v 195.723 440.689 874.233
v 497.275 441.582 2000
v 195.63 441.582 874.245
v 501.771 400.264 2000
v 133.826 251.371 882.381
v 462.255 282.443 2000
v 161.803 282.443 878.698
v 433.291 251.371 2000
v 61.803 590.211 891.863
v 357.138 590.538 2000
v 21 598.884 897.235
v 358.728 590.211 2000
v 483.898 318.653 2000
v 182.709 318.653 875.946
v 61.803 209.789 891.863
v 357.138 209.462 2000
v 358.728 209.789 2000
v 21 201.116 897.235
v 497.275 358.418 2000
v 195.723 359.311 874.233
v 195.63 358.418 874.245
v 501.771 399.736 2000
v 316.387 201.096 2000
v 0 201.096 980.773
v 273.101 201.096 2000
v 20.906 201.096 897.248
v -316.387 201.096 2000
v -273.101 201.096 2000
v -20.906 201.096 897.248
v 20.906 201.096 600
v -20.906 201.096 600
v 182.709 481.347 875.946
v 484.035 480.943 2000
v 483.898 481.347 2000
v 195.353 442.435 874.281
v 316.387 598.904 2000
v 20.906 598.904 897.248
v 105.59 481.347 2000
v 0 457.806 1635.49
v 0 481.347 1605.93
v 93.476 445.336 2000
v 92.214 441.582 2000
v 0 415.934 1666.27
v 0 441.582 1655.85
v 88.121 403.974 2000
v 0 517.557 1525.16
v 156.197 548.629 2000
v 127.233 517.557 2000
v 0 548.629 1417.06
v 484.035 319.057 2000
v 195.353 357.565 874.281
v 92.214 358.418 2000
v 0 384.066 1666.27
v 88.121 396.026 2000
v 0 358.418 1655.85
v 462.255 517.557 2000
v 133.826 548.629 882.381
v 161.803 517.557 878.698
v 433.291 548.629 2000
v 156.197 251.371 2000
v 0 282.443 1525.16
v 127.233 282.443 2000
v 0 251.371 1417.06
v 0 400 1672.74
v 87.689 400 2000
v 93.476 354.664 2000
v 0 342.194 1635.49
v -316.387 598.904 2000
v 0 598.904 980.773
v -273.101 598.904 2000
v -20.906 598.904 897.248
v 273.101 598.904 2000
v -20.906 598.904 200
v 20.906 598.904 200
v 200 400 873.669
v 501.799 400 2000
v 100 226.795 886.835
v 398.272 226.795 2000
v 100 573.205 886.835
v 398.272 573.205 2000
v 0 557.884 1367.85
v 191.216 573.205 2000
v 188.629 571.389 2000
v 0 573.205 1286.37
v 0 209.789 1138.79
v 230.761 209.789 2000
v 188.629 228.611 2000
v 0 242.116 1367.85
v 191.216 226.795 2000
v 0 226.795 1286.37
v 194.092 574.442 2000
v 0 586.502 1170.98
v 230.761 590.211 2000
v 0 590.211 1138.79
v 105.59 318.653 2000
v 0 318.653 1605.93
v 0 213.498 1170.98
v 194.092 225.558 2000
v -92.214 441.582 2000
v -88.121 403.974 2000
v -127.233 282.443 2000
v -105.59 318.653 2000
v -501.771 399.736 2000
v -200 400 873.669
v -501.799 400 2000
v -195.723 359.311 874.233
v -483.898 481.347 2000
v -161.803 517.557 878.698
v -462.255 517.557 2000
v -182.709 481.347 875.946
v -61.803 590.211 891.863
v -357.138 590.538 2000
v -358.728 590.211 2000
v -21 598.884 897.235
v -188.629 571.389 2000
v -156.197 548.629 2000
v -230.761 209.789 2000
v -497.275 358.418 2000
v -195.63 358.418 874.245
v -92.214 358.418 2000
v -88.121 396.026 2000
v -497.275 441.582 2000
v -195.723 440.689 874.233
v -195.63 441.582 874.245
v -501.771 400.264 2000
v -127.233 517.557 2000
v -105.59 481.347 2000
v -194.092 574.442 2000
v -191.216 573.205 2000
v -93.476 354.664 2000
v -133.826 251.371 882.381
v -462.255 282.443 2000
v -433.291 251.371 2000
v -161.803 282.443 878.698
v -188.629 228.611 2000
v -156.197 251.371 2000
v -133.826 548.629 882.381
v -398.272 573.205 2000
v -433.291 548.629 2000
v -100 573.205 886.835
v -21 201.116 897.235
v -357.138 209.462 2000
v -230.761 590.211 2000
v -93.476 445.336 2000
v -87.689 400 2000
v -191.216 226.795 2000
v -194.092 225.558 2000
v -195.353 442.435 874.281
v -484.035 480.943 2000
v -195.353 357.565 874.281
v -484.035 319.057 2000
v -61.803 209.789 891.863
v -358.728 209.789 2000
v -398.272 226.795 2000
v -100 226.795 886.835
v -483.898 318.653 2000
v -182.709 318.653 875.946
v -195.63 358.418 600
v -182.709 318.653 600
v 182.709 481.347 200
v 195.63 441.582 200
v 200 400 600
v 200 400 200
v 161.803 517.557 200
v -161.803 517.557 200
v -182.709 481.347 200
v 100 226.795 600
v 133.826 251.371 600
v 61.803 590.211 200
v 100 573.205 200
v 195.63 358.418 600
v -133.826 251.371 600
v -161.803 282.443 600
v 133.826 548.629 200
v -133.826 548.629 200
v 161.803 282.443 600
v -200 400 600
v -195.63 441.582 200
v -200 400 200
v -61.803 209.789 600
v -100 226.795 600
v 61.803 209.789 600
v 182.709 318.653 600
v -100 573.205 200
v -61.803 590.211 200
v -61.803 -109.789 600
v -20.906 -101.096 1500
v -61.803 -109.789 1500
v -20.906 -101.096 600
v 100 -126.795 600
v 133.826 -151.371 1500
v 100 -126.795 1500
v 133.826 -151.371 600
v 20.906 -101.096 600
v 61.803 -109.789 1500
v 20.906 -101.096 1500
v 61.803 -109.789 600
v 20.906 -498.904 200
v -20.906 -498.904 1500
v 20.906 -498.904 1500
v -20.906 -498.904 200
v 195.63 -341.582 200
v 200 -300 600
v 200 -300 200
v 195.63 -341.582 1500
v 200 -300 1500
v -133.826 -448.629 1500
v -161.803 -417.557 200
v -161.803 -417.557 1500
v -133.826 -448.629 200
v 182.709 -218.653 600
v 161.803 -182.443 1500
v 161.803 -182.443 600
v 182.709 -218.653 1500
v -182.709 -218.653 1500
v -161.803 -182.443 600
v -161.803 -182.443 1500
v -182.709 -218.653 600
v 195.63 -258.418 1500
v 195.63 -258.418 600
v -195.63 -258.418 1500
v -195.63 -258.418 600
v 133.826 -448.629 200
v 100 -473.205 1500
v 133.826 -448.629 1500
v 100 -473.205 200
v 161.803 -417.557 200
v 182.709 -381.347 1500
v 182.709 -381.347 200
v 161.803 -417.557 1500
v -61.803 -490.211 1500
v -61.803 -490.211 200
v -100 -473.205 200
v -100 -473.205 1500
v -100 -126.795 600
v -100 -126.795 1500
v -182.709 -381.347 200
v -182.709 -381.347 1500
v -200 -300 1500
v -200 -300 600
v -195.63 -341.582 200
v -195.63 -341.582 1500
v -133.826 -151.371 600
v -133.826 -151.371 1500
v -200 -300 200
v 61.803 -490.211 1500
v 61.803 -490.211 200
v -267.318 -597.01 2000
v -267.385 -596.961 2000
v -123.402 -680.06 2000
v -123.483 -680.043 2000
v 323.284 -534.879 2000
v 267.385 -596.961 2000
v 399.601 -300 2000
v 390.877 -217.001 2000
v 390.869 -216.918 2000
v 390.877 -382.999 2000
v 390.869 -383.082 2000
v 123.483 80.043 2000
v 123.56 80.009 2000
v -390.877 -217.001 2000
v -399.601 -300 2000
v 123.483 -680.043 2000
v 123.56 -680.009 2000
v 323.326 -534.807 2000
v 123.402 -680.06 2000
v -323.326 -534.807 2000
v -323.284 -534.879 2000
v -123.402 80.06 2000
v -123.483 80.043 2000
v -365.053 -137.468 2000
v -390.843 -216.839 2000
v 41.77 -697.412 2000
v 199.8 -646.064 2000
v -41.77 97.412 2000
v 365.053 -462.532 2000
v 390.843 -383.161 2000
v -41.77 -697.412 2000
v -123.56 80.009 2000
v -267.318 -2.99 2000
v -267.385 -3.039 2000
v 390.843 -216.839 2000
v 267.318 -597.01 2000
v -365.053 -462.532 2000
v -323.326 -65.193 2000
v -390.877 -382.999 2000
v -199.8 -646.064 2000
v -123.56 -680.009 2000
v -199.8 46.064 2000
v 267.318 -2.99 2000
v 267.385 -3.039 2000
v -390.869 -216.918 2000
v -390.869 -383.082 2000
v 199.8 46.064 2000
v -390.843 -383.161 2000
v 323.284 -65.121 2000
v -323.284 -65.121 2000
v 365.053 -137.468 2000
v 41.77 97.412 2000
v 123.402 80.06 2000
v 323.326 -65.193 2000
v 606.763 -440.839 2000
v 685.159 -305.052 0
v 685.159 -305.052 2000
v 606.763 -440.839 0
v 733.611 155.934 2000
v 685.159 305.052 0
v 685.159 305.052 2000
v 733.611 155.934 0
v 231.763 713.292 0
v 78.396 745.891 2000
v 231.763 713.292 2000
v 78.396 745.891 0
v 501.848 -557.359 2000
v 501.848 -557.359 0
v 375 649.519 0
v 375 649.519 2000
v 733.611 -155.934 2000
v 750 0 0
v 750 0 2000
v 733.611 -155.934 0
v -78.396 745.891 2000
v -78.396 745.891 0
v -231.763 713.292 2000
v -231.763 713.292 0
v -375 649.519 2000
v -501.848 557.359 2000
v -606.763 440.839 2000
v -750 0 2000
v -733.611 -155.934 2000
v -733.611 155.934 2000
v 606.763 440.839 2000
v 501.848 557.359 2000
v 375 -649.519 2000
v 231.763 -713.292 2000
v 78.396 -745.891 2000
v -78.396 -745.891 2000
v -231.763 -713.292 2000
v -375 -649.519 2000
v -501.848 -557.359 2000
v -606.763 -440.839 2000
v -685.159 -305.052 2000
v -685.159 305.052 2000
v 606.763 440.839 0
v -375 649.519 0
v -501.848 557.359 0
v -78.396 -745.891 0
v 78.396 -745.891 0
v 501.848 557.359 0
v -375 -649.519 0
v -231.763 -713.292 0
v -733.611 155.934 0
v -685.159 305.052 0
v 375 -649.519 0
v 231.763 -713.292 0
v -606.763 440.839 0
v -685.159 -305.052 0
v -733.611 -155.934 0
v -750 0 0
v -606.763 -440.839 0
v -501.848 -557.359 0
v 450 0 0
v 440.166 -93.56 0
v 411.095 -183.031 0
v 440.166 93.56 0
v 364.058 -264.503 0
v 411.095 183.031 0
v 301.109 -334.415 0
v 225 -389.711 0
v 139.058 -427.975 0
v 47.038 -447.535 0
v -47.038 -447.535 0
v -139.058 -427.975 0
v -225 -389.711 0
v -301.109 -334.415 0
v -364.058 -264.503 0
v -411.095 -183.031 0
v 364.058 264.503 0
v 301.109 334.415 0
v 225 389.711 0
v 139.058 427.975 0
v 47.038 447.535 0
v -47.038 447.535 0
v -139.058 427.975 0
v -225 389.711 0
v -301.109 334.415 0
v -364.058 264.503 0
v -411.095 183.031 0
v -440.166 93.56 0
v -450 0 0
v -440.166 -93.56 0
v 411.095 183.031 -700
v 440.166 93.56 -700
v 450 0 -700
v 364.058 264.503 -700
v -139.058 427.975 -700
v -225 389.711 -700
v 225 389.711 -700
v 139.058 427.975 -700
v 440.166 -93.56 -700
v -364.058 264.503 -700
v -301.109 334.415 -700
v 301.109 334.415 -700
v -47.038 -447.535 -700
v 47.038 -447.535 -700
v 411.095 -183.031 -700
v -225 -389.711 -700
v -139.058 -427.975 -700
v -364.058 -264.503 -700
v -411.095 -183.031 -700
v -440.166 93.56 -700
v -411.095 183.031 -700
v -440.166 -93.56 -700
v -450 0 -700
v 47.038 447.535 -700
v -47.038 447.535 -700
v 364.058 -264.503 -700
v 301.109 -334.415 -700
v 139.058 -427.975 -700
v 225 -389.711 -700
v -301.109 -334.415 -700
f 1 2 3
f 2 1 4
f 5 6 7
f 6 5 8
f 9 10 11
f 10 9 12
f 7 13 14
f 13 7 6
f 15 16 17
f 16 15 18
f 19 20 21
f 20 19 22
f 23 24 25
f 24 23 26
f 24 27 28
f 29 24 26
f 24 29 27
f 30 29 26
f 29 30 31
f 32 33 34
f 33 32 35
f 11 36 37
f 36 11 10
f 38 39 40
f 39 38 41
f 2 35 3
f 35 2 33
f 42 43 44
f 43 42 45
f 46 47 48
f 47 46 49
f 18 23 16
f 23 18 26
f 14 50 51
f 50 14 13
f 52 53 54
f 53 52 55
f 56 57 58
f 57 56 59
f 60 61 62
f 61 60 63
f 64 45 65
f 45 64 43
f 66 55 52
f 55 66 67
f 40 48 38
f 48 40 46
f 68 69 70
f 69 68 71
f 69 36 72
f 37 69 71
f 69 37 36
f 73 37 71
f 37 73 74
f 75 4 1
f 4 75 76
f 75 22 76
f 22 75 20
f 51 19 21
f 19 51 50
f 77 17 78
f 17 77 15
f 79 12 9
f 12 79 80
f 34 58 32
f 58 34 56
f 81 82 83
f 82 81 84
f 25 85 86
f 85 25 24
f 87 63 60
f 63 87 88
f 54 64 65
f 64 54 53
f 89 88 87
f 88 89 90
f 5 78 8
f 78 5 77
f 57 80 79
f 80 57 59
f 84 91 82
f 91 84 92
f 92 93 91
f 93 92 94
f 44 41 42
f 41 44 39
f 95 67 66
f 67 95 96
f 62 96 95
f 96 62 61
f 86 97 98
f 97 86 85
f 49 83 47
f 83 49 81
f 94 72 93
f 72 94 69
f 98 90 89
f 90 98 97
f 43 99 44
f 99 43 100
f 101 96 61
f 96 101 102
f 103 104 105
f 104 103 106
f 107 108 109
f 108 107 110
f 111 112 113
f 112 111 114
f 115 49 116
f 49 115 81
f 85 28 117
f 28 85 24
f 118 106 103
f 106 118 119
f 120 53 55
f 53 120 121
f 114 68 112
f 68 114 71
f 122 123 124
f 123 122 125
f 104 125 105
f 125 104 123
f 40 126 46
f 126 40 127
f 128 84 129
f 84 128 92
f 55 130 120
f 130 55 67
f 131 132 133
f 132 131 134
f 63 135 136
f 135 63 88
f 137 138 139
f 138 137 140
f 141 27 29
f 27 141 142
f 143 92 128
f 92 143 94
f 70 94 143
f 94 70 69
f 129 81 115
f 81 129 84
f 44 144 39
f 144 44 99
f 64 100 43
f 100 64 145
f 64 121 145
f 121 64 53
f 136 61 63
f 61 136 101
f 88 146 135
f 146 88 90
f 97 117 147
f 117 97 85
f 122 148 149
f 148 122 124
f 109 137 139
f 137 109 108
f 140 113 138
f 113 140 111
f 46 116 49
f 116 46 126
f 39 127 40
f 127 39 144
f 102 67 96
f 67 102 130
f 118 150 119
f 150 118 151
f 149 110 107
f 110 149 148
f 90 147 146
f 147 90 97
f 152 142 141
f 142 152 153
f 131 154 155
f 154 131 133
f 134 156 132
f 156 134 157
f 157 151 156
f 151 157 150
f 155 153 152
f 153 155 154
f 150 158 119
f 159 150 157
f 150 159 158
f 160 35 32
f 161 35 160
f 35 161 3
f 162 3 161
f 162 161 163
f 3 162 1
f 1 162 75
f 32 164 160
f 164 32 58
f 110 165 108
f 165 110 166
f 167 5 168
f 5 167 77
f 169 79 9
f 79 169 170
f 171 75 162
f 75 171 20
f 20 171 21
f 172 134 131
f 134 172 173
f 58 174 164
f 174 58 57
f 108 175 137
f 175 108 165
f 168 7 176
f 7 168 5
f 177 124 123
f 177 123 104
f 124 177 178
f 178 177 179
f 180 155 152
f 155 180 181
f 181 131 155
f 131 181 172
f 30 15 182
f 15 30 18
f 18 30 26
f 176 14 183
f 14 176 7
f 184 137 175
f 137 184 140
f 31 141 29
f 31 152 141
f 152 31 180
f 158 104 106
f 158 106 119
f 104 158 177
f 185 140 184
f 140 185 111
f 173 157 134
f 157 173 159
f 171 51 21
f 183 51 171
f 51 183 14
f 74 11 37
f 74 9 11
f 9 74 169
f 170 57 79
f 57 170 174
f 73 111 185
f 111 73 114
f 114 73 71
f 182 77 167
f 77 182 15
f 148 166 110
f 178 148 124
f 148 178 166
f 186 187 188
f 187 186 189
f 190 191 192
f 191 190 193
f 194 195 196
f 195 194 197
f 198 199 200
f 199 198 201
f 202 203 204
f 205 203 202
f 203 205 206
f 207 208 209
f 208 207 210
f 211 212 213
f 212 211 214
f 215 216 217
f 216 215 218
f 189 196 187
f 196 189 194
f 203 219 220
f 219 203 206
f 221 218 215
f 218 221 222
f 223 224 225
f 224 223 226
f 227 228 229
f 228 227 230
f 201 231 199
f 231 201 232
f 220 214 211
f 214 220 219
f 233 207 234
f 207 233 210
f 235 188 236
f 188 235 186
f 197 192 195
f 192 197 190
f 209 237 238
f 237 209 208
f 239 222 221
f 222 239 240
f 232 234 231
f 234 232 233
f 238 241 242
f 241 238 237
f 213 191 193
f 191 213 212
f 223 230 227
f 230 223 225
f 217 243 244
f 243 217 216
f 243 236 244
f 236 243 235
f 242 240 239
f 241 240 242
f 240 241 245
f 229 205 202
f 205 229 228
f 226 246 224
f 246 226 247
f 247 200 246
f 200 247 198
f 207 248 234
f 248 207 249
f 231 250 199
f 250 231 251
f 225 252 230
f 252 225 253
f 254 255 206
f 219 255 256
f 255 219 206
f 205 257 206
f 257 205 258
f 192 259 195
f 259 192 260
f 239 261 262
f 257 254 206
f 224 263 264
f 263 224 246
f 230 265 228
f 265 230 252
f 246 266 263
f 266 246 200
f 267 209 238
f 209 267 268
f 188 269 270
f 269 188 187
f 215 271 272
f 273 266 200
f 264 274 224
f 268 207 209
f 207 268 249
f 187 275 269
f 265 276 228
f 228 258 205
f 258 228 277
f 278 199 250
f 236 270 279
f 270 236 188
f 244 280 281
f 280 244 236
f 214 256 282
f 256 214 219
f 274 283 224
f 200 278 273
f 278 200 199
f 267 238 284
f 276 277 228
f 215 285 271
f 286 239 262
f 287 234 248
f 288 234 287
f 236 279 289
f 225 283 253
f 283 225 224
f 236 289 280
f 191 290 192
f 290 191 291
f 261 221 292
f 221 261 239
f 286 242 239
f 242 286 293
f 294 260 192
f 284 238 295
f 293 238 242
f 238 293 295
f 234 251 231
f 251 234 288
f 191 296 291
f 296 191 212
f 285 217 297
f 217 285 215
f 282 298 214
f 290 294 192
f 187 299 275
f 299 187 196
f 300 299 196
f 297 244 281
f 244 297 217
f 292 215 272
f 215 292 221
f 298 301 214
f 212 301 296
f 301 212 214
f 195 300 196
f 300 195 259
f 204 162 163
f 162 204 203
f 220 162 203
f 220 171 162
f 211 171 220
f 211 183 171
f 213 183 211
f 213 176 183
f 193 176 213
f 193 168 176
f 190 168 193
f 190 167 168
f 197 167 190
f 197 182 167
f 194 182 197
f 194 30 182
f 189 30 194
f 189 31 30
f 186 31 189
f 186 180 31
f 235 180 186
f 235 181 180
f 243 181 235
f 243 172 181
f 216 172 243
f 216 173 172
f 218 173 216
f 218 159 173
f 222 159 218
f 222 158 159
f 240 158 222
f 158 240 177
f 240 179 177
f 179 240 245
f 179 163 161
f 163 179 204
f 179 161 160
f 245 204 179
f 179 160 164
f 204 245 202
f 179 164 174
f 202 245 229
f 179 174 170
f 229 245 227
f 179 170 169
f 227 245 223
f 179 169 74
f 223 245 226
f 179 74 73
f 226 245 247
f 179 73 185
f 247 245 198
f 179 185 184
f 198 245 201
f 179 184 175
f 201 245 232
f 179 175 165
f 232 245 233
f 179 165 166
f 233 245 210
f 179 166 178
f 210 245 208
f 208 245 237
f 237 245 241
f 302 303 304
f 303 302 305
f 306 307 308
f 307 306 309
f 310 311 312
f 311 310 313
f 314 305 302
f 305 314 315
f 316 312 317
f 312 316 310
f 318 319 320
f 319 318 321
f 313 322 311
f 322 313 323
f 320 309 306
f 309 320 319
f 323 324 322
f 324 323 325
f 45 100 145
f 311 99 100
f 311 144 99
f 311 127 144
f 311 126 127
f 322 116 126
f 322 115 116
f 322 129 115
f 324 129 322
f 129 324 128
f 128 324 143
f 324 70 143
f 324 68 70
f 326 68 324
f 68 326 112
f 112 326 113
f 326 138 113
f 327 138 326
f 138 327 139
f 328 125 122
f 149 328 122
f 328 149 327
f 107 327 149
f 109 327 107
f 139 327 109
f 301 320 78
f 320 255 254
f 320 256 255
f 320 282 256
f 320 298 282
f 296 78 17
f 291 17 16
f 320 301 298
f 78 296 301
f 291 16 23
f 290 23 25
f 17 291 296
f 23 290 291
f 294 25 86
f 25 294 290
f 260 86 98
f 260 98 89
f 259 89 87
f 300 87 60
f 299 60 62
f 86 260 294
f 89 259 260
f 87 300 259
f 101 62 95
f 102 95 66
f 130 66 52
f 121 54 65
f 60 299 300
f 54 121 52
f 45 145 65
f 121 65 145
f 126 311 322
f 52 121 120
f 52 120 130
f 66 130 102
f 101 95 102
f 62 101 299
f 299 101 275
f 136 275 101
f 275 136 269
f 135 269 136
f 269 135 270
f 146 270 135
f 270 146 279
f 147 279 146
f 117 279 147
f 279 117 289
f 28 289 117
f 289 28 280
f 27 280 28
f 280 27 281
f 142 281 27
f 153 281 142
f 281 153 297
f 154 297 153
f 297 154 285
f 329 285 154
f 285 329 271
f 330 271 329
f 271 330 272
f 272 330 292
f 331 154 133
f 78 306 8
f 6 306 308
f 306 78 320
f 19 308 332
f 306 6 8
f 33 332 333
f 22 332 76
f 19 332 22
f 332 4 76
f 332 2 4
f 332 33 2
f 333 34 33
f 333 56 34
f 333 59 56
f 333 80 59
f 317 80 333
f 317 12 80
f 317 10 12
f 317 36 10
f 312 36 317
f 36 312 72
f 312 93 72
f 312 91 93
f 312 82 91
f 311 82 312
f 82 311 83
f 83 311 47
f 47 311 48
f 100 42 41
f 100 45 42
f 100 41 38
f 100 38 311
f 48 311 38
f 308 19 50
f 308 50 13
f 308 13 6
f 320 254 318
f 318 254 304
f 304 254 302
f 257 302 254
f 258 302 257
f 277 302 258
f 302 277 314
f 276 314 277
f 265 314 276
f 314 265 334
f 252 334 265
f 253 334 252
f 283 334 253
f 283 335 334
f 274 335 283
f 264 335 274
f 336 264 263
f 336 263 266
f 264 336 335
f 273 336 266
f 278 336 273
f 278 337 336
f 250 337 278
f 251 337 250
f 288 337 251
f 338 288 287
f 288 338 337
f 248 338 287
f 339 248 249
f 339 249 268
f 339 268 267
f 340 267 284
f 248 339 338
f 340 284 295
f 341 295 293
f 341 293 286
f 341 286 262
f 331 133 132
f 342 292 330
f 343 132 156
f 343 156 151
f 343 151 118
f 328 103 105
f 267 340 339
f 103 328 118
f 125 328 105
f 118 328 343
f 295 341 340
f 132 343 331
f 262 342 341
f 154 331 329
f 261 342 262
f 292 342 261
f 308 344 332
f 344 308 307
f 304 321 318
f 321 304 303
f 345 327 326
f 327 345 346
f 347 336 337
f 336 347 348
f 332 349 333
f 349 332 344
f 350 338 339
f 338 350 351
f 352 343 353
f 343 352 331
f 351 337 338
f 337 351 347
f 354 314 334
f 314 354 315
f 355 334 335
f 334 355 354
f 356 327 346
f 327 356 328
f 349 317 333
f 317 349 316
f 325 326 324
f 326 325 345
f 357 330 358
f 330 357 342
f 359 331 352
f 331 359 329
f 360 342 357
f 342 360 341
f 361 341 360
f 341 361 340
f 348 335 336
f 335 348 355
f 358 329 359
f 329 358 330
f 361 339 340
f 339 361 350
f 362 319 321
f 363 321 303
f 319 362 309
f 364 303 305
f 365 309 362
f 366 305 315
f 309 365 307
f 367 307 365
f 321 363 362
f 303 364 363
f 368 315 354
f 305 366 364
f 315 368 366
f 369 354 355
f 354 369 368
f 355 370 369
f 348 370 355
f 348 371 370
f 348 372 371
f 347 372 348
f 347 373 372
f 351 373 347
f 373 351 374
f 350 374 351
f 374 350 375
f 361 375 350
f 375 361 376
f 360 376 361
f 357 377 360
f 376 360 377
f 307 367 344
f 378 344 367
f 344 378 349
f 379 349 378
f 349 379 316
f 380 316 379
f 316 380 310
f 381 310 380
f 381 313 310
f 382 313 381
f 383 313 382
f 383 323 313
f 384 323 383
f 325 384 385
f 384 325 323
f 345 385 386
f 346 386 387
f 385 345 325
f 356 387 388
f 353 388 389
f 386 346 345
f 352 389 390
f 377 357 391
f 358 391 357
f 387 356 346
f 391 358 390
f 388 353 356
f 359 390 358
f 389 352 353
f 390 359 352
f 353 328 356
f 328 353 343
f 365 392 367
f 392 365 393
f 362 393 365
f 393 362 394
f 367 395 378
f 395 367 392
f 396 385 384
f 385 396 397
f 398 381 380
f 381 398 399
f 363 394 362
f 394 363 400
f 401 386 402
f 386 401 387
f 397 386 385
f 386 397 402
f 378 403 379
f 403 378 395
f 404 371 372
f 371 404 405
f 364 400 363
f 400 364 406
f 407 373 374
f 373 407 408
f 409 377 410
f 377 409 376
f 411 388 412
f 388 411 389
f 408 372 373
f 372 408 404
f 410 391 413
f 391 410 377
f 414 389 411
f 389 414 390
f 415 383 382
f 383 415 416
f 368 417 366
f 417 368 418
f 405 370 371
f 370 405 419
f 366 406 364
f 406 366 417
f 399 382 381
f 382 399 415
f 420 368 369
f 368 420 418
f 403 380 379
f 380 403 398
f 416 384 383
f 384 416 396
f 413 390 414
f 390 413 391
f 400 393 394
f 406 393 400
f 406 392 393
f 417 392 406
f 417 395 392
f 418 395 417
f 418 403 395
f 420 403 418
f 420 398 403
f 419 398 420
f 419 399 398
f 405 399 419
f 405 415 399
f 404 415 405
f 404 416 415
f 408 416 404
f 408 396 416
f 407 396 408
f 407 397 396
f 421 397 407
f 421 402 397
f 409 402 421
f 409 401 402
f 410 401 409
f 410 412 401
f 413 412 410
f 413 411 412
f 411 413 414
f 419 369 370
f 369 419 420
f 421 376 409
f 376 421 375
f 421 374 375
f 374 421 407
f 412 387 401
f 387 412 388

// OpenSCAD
// 1 unit = 10µm
scale_factor = 0.01;
bulk_height = 2000;
bulk_diameter = 1500;
tube_diameter = 400;
bottom_padding = 200;
side_padding = 400;
funnel_height = 500;
y_trunk_height = 700;
y_branch_height = 1200;
y_branch_angle = 15;
holder_height = 700;
holder_diameter = 900;
holder_pin = 10;


module InnerChannels() {
    
    difference() {
    
        translate([0, -bulk_diameter/5, bottom_padding]) {

            cylinder(bulk_height-bottom_padding, d=tube_diameter);
            sphere(d=tube_diameter);

            translate([0, 0, bulk_height-bottom_padding-funnel_height])
                cylinder(funnel_height+1, d1=tube_diameter, d2=tube_diameter*2);

            rotate([-90, 0, 0])
                cylinder(bulk_diameter-side_padding*2, d=tube_diameter);

            translate([0, bulk_diameter-side_padding*2, 0]) {
                
                sphere(d=tube_diameter);
                cylinder(y_trunk_height, d=tube_diameter);
                
                translate([0, 0, y_trunk_height]) {
                    
                    rotate([0, y_branch_angle, 0])
                        cylinder(y_branch_height, d=tube_diameter);
                    rotate([0, -y_branch_angle, 0])
                        cylinder(y_branch_height, d=tube_diameter);
                    
                    
                }
                
            }
            
            translate([-tube_diameter/2, 0, 0])
                cube([tube_diameter, bulk_diameter-side_padding*2, tube_diameter]);

        }

        translate([-(tube_diameter+2)/2, -bulk_diameter/5-tube_diameter/2, -1])
            cube([tube_diameter+2, bulk_diameter-side_padding, (tube_diameter+2)/2]);
                
    }

}

module FullObject() {
    
    difference() {
    
        cylinder(bulk_height, d=bulk_diameter);
        InnerChannels();
        
    }

    translate([0, 0, -holder_height])
        cylinder(holder_height+holder_pin, d=holder_diameter);

    
}

FullObject();
